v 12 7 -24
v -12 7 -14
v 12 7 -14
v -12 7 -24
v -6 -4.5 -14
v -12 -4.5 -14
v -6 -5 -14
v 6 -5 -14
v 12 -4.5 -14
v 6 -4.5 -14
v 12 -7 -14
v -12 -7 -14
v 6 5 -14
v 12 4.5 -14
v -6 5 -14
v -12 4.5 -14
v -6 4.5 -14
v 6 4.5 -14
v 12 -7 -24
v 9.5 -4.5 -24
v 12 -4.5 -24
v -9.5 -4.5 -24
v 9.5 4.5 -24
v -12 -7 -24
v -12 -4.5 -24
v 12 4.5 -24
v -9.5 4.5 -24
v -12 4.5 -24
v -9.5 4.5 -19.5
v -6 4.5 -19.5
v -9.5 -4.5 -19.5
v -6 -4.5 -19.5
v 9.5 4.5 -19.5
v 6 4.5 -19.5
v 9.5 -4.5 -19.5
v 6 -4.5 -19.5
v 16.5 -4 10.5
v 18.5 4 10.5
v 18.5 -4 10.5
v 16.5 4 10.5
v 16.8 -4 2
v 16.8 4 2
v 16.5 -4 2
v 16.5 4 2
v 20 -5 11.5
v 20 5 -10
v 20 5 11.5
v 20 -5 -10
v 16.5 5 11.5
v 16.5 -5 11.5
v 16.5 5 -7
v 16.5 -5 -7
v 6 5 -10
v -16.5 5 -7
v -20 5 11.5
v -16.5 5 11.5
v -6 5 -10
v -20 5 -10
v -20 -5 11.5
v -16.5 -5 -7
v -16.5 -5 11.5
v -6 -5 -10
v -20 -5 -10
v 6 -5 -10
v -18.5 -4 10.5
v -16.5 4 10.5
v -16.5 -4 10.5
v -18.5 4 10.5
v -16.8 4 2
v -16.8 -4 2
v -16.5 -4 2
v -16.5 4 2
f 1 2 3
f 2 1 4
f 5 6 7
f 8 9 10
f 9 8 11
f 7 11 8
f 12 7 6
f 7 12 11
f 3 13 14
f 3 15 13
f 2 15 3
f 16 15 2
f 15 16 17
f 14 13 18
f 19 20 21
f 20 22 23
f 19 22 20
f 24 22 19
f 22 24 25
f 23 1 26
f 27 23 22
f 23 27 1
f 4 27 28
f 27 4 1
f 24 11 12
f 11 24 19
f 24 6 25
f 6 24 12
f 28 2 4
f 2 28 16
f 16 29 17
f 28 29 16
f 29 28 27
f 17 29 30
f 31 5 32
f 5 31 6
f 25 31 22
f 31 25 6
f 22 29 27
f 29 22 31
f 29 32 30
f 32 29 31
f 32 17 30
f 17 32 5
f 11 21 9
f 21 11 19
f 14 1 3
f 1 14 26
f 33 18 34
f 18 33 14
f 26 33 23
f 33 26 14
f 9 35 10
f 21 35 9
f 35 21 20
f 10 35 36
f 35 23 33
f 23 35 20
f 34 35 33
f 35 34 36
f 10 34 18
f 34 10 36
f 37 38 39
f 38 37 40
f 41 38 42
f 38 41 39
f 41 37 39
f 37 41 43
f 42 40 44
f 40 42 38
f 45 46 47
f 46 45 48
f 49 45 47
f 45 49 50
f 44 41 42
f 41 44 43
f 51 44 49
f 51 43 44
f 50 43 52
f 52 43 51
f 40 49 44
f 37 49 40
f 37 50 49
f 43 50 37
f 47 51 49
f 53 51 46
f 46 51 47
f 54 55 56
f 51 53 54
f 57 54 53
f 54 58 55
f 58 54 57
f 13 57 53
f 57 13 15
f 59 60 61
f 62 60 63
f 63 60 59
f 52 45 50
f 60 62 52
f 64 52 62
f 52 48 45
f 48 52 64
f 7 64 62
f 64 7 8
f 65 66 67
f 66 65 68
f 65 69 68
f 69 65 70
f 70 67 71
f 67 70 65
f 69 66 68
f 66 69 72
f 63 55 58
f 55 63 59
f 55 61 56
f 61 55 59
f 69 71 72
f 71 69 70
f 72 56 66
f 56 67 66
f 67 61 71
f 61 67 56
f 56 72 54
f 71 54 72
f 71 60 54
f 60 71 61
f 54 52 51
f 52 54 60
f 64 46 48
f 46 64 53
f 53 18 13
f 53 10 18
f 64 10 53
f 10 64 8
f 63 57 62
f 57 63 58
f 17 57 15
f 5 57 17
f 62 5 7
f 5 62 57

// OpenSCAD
color("red")
  translate([0, 0, -1.5]) {
  difference() {
//      cylinder (r=41/2, h=9, center=true, $fn=128);
//      cylinder (r=37/2, h=10, center=true, $fn=128);
  }
}

 
module inner_bit() {
//    rotate([0, 0, 90]){
    difference() {
        translate([-7, 0, 0]) {
            color("green") {
                cube([14, 24/2, 10]);
            }
        }
            translate([-4.5, 9.5, -1]) {
                cube([9, 5, 12]);
            }
            translate([-4.5, 6, 4.5]) {
                cube([9, 9, 8]);
            }
      }
  //}
 
}

module fork () {
    translate([0,-5,-10]) {
      cube([20, 10, 3]);
    }

    translate([16.5,-5, -7]) {
      cube([3.5, 10, 9]);
    }

    translate([0, -5, -14]) {
      cube([6, 10, 4]);
    }
}
fork();

rotate([0, 0, 180]) {
    fork();
}

rotate([0, 0, 90]) {
  translate([0, 0, -24]) {
    inner_bit();

    mirror([0, 1, 0]) {
    inner_bit();
    }
  }
}

ClipPoints = [
  [5,  0,  0 ], // 0, outer bottom middle
  [5,  5,  0 ], // 1, outer bottom right
  
  [5,  5,  12], // 2, outer top right
  [5,  0,  12], // 3, outer top middle
  
  [0,  0,  12], // 4, inner top middle
  [0,  5,  12], // 5, inner top right
  
  [0,  5,  0 ], // 6, inner bottom right
  [0,  0,  0 ], // 7, inner bottom middle
  
  [0,  4,  0 ], // 8, inner bottom cliff
  [0,  4,  10], // 9, inner middle cliff
  [0,  0,  10], // 10, inner middle middle

  [2,  4,  10], // 11, deep middle cliff
  [2,  0,  10], // 12, deep middle middle
  
];

WedgeFaces = [
  [8, 7, 12, 11],
  [11, 12, 10, 9],
  [9, 8, 11], 
  [8, 9, 10, 7],
  [10, 12, 7],
];

clip_bit();
mirror([1, 0, 0]) {
  clip_bit();
}

module clip_bit() {
  translate([36/2-1.5, -5, 2]) {
    color("blue") {
      difference() {
        cube([3.5, 10, 9.5]);
      translate([-2, 1, -1.5]) {
          wedge();
      }
    }
  }
}

//wedge();

module wedge() {
         union() {
            translate([2, 0, 0]) {    
              polyhedron(ClipPoints, WedgeFaces);
            }
            translate([2, 4, 0]) {    
              polyhedron(ClipPoints, WedgeFaces);
            }
            cube([2, 8, 10]);
          }
        }   
}
